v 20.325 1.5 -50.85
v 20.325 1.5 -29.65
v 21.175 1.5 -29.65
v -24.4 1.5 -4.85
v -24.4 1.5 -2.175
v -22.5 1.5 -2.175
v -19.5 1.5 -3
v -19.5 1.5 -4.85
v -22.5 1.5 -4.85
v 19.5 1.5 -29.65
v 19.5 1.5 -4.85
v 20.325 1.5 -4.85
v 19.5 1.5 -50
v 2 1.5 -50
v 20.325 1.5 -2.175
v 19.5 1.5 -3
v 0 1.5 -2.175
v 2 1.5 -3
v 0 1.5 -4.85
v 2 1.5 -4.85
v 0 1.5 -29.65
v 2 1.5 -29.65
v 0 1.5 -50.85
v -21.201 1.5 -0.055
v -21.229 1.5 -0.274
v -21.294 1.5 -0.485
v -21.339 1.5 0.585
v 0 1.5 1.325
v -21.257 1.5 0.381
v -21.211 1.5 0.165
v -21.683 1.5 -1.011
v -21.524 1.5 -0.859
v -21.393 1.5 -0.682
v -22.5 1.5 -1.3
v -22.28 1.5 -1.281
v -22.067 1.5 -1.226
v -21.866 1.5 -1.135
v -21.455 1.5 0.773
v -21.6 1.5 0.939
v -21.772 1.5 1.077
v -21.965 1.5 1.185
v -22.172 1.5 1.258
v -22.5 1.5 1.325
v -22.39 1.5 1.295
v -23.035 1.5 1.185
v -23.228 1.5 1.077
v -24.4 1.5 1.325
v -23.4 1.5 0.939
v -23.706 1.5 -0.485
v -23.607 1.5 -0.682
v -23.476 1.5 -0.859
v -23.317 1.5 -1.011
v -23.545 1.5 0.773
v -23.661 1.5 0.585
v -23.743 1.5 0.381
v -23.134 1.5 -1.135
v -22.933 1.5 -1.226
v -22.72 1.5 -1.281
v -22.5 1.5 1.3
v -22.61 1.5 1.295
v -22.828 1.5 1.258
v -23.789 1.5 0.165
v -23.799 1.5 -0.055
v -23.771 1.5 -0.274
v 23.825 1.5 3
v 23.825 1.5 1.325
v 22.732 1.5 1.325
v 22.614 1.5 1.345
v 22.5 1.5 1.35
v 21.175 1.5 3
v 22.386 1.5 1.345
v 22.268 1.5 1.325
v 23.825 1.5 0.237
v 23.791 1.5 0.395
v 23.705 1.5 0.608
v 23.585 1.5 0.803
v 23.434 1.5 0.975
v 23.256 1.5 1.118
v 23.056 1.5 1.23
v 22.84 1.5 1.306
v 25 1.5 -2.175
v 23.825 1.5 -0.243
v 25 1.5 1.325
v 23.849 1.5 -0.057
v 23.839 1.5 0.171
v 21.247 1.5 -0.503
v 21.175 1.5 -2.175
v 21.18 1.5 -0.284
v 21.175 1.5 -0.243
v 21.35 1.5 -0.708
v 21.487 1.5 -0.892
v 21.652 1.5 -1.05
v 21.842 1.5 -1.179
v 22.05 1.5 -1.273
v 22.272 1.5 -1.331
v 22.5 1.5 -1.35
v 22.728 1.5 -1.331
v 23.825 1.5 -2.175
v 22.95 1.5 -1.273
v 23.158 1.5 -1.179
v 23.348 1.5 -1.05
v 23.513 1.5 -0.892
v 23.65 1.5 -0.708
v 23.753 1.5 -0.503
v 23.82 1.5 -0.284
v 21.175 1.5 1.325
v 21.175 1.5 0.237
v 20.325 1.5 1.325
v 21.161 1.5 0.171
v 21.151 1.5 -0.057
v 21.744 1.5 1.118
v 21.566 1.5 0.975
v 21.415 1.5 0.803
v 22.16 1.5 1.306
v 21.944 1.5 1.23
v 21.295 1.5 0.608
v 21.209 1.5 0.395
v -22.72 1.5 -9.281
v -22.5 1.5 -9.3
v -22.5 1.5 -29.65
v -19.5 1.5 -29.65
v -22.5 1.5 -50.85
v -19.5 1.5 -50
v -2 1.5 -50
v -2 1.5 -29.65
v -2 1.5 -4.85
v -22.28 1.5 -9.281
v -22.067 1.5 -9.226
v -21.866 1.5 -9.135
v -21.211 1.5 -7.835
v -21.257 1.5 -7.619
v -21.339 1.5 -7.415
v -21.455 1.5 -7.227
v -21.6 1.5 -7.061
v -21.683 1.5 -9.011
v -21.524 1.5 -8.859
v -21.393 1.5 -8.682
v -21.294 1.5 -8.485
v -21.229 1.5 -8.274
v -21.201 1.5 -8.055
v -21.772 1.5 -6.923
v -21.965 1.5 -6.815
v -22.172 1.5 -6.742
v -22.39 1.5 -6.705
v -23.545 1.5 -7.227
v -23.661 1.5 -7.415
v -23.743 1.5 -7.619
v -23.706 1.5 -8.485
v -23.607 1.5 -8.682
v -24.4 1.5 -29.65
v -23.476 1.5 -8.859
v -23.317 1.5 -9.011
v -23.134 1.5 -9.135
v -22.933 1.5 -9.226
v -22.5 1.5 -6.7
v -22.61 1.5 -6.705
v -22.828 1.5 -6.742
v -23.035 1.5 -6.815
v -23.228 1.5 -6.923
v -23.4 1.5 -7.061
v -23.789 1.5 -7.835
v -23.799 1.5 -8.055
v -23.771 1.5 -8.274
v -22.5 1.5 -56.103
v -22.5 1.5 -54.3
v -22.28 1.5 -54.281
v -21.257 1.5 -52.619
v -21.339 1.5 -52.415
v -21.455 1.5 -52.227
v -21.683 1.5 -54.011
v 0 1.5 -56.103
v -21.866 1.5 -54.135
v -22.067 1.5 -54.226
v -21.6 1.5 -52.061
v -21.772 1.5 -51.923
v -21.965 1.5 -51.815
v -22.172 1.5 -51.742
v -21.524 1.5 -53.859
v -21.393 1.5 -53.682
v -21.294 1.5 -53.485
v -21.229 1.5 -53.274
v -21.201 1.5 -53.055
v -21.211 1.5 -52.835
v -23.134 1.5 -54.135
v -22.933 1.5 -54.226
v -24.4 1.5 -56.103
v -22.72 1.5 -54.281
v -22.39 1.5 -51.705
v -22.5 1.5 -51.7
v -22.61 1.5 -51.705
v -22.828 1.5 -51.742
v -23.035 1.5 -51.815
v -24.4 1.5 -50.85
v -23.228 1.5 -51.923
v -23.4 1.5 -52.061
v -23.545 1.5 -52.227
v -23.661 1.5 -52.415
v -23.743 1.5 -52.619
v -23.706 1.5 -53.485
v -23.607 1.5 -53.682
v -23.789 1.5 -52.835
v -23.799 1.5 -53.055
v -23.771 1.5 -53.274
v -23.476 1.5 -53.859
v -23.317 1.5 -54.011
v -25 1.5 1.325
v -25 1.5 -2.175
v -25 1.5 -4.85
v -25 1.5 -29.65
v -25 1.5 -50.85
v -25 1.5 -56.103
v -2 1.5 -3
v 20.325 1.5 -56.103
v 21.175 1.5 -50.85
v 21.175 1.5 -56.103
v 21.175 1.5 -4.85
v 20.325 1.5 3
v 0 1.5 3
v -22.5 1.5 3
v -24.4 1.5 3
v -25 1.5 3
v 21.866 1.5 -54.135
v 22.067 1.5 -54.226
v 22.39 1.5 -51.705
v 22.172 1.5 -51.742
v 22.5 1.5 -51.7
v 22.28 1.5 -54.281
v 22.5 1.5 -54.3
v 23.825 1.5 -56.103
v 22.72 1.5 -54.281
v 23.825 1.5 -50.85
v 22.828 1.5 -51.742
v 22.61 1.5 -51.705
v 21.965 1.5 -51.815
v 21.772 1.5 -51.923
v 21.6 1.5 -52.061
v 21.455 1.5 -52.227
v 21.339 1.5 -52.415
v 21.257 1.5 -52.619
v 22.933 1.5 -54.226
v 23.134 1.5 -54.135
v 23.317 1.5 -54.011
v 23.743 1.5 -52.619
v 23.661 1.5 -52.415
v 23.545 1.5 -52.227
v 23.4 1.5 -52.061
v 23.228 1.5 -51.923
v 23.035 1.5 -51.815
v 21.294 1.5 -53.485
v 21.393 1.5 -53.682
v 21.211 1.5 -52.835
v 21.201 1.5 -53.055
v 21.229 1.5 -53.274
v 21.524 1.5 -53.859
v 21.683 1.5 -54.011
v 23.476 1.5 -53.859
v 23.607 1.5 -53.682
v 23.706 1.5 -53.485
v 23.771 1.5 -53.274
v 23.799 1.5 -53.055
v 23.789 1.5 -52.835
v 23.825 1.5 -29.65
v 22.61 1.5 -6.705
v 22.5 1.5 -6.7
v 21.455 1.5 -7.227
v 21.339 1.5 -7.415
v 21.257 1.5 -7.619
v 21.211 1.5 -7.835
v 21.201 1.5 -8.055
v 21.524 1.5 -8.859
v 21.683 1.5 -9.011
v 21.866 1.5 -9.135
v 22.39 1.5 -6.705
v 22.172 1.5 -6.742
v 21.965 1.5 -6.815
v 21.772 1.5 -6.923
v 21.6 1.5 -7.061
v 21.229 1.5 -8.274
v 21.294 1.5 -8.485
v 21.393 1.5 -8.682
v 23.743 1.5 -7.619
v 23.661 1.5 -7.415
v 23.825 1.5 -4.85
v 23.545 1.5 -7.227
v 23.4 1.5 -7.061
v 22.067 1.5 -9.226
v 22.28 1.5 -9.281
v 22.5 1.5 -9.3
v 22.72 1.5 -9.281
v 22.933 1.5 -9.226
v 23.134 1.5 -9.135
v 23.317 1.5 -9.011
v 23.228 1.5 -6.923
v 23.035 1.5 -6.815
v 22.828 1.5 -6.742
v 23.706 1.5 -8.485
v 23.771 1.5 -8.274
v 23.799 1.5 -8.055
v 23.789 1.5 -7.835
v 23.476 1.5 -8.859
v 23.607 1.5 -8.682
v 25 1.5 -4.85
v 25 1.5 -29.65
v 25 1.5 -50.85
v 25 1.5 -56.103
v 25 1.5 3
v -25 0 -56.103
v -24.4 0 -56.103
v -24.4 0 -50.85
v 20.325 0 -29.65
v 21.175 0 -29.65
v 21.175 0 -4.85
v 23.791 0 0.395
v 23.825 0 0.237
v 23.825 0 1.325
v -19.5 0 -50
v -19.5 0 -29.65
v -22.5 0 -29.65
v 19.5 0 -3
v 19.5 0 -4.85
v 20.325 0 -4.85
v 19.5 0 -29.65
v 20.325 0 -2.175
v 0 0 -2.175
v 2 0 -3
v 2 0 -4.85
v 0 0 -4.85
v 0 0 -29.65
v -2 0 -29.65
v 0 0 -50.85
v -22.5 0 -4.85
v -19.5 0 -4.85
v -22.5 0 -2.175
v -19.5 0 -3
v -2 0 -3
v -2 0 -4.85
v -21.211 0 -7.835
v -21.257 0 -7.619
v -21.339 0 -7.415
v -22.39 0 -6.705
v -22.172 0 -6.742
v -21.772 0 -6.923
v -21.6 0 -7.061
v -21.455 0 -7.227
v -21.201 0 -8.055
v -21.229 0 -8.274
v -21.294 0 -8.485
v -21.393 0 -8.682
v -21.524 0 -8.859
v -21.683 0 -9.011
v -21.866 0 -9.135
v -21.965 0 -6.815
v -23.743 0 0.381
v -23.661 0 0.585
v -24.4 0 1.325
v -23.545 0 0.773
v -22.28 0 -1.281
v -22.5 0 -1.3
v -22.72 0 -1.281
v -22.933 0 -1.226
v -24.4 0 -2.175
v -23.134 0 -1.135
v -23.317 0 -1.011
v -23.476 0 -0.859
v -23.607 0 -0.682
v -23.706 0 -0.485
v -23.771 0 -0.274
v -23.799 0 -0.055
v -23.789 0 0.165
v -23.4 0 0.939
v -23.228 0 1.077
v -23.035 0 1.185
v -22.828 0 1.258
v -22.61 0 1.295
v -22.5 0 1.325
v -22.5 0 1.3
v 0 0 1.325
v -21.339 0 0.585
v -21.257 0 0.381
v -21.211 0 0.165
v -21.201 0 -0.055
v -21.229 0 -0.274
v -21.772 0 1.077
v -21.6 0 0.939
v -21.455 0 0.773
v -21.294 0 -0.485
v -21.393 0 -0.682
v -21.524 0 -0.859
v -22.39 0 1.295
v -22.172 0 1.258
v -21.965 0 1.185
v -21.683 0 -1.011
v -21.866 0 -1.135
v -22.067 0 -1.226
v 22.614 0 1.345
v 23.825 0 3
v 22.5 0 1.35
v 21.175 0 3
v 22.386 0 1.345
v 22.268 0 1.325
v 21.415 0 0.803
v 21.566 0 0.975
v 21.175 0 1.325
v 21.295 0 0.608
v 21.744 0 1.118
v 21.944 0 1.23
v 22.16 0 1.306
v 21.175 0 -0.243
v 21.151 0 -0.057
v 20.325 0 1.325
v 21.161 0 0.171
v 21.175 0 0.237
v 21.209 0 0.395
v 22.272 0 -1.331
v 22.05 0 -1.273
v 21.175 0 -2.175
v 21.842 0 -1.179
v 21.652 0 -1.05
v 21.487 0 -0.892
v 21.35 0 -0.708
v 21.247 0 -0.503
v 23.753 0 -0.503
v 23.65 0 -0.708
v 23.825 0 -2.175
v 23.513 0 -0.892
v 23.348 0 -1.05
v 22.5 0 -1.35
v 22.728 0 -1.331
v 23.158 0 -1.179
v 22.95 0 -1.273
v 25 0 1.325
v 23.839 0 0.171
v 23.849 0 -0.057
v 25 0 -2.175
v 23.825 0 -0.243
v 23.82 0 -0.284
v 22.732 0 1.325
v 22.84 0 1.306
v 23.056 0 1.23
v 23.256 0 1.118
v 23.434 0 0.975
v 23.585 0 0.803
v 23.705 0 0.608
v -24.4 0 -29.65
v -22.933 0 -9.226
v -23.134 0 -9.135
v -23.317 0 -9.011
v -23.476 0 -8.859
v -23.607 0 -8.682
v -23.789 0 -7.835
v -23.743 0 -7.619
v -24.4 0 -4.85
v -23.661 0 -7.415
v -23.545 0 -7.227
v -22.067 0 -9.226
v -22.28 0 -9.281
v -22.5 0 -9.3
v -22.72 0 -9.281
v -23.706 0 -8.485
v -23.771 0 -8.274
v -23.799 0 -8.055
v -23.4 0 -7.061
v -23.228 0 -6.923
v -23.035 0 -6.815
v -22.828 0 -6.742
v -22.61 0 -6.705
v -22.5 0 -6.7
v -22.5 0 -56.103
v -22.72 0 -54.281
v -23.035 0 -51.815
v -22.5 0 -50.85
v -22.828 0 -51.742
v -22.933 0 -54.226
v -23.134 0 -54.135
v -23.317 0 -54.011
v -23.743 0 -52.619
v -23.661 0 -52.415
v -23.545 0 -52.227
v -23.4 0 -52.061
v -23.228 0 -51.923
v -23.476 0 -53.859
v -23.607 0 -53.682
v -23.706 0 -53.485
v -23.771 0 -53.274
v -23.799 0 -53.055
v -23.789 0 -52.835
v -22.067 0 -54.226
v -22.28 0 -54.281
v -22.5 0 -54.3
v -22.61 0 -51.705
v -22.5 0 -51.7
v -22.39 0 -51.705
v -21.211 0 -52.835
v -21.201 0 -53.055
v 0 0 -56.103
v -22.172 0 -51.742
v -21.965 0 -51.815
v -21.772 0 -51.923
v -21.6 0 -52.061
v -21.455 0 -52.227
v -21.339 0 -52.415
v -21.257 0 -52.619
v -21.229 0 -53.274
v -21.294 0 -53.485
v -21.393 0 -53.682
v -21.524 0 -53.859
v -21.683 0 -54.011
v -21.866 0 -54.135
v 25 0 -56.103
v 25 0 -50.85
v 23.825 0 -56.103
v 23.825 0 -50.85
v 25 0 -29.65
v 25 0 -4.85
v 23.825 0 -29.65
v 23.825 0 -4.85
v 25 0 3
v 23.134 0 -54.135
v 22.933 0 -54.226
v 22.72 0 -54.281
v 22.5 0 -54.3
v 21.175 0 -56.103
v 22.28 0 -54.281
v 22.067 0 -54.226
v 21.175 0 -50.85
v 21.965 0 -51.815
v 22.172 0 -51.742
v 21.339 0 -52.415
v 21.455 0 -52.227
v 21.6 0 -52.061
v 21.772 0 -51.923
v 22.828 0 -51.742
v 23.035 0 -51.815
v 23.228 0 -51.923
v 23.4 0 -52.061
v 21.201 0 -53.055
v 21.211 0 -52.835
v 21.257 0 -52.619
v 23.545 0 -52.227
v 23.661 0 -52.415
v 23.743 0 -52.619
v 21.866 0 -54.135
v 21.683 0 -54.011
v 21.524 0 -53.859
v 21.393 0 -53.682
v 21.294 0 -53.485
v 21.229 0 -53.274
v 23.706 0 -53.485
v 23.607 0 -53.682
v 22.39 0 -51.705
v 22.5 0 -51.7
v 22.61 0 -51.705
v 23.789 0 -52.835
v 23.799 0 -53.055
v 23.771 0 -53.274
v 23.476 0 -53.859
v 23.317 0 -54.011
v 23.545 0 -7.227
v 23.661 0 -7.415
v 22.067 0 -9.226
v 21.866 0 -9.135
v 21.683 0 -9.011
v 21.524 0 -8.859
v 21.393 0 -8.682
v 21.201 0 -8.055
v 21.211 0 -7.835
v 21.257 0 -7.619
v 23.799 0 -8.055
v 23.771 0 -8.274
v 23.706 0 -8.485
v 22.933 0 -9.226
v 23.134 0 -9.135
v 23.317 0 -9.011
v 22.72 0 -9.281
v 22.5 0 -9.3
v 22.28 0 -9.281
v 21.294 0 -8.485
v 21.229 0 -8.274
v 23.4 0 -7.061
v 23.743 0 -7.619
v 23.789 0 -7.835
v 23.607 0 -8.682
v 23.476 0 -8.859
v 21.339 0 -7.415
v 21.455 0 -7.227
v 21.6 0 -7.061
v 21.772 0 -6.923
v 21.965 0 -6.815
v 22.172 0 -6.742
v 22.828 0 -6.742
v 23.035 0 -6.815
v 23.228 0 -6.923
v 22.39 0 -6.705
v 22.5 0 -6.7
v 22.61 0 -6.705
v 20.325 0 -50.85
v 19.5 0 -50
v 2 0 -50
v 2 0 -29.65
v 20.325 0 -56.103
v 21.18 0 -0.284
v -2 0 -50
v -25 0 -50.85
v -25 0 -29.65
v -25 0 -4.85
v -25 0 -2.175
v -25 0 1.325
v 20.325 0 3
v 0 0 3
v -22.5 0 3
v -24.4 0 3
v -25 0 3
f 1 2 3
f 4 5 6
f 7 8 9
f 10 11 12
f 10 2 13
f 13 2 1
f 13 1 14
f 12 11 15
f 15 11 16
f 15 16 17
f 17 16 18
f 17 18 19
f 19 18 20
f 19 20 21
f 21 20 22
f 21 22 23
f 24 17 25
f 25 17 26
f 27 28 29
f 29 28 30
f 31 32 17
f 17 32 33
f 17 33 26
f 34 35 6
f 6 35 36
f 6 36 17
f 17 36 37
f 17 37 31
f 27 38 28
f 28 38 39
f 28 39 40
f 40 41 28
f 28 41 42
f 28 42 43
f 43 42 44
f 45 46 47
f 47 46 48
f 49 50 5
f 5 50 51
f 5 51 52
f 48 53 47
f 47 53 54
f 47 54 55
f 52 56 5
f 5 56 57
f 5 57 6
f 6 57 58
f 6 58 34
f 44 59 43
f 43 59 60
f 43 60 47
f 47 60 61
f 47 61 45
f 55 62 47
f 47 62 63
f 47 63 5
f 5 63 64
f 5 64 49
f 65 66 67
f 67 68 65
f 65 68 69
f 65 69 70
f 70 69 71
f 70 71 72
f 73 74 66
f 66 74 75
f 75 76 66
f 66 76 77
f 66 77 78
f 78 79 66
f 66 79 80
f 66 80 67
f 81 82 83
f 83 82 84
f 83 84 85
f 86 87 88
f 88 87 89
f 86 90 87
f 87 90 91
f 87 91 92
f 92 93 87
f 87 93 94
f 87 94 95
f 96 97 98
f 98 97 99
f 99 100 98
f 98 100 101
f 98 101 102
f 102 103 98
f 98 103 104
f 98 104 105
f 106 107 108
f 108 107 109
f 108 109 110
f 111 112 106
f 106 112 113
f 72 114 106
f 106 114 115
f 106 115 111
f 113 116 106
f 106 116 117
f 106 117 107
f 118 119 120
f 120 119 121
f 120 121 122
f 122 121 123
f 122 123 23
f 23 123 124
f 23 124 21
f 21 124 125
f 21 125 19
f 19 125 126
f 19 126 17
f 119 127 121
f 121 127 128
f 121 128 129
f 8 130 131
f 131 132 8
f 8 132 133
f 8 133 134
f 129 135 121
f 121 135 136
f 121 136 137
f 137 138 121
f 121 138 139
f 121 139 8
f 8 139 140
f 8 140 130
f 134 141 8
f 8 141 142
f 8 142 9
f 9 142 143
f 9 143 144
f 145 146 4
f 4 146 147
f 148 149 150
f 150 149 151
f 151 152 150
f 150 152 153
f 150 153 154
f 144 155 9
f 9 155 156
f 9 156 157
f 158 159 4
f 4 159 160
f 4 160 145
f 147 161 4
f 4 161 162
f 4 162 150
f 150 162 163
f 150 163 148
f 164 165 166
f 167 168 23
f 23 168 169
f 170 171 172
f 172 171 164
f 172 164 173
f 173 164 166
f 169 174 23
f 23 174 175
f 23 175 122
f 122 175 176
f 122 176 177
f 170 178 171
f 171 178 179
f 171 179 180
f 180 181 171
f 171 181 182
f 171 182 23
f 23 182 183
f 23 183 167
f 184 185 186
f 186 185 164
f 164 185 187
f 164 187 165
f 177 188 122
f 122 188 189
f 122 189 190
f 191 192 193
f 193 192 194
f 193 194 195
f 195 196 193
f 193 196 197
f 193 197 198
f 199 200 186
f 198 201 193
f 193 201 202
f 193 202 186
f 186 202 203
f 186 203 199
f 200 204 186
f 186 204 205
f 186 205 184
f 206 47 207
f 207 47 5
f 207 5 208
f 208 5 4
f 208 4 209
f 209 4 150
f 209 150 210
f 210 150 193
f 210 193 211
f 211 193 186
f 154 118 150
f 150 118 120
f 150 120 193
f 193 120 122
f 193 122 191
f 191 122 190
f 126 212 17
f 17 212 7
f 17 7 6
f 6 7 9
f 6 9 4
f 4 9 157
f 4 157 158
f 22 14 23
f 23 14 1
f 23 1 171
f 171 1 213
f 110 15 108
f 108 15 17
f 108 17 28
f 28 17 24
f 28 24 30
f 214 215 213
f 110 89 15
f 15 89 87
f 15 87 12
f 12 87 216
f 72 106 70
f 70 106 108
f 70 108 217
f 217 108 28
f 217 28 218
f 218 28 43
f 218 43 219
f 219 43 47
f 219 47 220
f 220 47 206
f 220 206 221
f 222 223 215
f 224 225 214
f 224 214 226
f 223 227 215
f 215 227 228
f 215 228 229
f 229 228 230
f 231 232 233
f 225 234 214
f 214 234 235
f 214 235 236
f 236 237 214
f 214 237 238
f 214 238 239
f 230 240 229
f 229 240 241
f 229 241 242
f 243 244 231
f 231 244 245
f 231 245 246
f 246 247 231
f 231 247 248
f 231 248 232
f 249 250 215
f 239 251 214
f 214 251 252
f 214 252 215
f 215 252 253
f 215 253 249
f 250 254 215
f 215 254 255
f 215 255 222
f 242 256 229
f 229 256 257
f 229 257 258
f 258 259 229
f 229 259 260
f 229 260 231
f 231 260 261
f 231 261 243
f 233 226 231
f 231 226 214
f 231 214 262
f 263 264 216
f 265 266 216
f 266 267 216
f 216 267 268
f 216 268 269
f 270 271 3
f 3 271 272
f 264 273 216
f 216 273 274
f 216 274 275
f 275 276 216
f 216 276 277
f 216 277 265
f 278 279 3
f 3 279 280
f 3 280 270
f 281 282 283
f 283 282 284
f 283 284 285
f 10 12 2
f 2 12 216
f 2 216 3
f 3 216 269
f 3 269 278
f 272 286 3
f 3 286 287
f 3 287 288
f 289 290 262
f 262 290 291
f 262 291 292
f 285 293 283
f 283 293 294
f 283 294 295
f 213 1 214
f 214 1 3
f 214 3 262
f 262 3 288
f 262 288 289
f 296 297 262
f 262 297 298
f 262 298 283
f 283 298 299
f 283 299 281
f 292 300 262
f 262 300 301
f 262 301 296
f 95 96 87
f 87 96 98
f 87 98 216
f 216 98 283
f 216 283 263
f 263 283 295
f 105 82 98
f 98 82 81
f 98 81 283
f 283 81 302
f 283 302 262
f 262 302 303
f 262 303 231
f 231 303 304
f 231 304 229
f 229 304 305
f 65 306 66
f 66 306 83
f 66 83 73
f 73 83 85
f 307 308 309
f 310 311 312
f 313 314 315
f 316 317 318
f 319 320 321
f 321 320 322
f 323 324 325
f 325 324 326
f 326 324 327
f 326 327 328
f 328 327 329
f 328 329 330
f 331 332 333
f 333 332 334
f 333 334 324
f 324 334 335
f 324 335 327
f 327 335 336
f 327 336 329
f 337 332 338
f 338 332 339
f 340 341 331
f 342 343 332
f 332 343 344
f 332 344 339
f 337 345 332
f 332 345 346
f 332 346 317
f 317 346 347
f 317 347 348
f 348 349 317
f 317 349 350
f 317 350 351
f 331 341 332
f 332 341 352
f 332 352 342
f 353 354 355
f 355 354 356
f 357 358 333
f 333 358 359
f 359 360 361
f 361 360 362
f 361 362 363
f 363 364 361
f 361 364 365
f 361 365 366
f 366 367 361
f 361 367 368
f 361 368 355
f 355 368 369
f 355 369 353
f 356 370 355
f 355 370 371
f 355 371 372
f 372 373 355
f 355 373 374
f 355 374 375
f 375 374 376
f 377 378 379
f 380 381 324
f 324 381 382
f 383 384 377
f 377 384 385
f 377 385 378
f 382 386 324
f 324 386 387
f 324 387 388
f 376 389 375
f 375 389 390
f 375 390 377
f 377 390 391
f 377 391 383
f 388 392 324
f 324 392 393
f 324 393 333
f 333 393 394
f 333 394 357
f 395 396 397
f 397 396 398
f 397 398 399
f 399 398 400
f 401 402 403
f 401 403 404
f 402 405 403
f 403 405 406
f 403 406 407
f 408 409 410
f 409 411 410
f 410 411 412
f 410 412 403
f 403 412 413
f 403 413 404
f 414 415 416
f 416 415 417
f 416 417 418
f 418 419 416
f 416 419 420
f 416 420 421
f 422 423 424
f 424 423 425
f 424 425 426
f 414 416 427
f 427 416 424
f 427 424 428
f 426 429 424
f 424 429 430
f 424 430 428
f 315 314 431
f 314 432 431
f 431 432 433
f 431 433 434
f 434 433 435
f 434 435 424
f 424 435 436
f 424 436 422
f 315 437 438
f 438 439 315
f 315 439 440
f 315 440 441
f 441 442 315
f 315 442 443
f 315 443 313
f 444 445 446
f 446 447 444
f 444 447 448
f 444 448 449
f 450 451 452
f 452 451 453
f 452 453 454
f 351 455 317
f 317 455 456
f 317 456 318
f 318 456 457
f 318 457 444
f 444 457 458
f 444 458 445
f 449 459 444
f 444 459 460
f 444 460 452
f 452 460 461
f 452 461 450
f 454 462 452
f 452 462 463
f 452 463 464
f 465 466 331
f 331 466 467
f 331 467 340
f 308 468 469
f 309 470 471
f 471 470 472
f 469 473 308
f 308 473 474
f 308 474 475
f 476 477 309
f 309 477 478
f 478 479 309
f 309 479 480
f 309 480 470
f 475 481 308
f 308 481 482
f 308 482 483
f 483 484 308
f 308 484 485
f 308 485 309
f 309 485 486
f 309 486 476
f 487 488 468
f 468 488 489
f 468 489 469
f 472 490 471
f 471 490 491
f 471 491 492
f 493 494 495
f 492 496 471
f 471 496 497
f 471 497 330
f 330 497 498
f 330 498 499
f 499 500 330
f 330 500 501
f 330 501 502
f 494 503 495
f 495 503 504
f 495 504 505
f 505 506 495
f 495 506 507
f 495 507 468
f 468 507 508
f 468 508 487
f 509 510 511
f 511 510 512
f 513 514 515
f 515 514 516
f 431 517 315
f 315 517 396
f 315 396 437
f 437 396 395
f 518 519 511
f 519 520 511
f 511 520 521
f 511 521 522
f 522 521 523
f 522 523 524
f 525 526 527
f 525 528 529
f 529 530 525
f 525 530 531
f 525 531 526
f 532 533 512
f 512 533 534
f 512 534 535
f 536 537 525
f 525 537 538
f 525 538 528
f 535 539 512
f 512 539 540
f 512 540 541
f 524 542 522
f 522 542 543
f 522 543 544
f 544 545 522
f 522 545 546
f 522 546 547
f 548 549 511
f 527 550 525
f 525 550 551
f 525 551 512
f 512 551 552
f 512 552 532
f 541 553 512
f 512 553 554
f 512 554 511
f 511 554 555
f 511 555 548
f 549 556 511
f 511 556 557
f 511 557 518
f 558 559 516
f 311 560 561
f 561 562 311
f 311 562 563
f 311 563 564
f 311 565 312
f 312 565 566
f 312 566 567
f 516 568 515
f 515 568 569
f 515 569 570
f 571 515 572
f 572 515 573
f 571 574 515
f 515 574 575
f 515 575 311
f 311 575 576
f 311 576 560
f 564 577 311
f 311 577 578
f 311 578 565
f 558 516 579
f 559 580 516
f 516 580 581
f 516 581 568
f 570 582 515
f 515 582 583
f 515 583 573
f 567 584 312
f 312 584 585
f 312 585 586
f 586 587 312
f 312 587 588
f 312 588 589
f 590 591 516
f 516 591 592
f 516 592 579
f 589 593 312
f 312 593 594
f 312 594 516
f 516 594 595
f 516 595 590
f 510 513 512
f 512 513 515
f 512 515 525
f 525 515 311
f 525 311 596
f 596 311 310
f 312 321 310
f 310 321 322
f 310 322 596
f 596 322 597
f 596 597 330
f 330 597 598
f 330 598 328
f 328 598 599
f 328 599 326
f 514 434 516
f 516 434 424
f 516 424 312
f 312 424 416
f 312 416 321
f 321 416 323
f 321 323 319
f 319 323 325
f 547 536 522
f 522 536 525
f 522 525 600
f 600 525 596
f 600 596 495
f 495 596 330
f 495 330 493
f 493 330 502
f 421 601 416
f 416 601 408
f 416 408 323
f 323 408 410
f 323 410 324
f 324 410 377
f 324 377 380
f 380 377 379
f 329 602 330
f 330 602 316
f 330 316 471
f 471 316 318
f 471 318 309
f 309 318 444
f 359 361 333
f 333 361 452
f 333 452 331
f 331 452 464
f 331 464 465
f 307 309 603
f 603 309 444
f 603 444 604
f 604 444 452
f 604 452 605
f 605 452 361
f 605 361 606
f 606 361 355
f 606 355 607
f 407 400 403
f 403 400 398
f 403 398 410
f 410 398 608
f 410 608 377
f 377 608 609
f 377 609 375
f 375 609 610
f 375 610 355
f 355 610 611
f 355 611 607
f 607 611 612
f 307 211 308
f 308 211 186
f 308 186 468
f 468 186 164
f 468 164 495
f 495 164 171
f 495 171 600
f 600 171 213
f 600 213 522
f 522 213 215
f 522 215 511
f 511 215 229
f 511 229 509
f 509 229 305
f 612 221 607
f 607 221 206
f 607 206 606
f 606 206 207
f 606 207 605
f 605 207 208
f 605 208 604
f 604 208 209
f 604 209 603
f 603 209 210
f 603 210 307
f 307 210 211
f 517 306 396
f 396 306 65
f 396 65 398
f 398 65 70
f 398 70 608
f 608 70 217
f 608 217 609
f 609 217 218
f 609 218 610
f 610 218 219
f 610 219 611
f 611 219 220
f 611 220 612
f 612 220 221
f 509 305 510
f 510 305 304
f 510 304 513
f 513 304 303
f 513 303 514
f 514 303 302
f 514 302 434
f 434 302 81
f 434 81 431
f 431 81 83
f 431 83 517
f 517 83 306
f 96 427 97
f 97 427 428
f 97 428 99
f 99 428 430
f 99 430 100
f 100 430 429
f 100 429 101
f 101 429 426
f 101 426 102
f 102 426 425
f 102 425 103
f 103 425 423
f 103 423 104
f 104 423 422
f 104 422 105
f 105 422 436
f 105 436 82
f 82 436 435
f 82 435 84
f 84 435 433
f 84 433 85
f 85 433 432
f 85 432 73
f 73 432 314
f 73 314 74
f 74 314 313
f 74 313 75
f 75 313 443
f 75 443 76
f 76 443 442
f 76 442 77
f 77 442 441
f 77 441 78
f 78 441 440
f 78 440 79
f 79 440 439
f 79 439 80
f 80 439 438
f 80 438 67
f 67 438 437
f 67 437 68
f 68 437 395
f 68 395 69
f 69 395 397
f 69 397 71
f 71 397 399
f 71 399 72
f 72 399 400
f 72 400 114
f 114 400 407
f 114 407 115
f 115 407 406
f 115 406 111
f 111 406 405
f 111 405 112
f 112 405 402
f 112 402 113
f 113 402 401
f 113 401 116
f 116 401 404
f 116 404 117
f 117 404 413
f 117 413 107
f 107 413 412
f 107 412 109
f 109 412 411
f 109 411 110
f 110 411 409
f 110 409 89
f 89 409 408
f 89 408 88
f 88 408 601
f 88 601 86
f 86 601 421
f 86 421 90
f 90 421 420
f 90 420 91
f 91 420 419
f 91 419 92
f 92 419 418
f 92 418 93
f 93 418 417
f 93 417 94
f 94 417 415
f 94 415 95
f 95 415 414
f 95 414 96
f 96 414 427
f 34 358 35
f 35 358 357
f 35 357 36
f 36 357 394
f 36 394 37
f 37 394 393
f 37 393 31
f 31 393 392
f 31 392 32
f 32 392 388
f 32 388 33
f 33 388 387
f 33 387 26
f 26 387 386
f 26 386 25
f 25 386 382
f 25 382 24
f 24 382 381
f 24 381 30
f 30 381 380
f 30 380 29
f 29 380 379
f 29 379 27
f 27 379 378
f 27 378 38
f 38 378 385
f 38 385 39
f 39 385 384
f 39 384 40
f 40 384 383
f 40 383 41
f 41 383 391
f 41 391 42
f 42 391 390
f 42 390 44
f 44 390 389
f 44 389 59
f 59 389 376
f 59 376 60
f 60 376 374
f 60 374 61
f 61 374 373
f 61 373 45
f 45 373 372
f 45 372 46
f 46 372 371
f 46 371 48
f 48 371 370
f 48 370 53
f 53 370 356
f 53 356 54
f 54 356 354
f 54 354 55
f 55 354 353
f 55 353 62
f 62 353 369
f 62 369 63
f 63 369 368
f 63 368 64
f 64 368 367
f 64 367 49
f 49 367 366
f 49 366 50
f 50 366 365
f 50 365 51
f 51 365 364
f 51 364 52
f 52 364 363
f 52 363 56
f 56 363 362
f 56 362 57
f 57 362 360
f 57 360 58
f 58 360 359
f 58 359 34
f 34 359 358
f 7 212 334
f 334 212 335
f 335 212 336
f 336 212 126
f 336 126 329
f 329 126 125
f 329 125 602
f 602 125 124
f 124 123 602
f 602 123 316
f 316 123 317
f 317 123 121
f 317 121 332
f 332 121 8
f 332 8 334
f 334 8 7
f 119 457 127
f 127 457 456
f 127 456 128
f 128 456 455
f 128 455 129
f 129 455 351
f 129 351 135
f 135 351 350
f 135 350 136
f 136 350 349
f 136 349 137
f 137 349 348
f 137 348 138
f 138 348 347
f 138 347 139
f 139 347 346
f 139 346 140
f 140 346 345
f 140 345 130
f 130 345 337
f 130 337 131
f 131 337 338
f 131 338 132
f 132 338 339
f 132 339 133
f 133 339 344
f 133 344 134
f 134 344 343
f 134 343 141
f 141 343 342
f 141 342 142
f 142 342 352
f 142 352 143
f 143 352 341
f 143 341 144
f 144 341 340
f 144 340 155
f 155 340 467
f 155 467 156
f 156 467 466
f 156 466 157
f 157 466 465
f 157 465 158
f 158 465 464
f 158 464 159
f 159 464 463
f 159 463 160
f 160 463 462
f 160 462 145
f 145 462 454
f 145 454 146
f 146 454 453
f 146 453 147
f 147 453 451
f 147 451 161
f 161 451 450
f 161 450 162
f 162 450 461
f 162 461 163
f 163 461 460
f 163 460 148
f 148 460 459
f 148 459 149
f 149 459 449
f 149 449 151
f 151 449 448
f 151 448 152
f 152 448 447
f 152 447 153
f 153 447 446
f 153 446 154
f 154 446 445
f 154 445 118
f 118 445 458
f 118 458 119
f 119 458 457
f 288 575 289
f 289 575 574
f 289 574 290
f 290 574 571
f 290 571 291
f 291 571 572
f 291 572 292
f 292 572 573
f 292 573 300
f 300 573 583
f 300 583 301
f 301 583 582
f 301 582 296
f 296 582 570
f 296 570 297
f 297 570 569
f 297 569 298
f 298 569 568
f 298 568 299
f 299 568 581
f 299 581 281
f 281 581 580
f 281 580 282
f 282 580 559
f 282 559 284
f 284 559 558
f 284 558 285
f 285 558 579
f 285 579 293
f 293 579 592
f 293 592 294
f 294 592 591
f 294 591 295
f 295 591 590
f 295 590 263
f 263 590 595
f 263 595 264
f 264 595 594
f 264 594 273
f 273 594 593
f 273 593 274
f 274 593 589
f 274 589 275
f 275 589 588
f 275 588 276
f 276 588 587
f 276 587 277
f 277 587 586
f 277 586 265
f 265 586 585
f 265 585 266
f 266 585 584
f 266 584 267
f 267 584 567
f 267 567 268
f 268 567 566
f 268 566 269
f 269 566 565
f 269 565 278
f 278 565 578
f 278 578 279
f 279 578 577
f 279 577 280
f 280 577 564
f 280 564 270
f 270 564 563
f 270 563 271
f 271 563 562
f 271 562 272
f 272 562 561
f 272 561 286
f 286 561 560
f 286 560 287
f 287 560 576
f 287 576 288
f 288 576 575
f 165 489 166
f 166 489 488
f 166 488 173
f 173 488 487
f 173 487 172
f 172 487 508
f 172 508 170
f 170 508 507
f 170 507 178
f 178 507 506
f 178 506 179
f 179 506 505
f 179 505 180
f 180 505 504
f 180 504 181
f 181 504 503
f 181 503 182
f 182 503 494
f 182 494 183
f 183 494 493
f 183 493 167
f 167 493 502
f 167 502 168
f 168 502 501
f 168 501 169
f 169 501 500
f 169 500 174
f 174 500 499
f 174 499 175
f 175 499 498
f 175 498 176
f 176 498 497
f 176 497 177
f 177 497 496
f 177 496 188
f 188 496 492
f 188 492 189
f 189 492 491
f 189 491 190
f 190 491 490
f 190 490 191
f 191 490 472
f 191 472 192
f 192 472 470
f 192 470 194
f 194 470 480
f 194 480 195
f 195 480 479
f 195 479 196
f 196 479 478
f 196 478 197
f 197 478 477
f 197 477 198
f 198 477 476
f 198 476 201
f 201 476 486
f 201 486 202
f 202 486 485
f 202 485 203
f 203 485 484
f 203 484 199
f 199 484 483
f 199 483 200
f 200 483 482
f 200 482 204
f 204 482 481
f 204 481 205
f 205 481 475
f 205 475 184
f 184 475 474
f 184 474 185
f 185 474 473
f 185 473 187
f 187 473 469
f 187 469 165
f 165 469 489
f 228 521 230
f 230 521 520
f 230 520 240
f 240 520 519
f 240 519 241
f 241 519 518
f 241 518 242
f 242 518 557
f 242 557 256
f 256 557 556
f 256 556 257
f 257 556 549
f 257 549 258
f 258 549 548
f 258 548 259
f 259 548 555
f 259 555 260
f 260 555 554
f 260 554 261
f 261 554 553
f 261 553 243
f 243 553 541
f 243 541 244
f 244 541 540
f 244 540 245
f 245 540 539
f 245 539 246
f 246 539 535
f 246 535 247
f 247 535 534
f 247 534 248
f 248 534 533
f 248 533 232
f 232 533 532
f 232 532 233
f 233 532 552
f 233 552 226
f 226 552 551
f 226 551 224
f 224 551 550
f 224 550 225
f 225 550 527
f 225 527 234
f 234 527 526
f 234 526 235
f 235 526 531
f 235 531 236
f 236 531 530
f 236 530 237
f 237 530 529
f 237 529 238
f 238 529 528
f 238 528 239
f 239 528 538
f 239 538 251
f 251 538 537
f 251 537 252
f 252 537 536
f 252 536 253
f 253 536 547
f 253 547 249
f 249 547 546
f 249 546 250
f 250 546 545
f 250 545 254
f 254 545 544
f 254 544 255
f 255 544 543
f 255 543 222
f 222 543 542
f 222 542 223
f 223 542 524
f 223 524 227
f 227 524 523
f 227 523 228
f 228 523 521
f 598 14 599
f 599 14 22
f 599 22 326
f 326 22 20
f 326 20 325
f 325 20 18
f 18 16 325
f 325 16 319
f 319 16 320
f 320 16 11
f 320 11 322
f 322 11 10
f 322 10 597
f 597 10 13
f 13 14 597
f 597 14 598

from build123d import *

# Parameters (mm, degrees)
SKETCH_1_R      = 1.35
SKETCH_1_R_2    = 1.3
SKETCH_1_W      = 17.5
SKETCH_1_H      = 47
EXTRUDE_1_DEPTH = 1.5


with BuildPart() as part:
    # 草图1 → 凸台-拉伸1 (new body)
    with BuildSketch(Plane(origin=(0, 0, 0), x_dir=(1, 0, 0), z_dir=(0, 1, 0))):
        Polygon((25, 11), (25, -3), (-25, -3), (-25, 11), (-25, 56.10335237), (25, 56.10335237), align=None)
        with Locations((22.5, 0)):
            Circle(SKETCH_1_R, mode=Mode.SUBTRACT)
        with Locations((-22.5, 0)):
            Circle(SKETCH_1_R_2, mode=Mode.SUBTRACT)
        with Locations((-22.5, 8)):
            Circle(SKETCH_1_R_2, mode=Mode.SUBTRACT)
        with Locations((22.5, 8)):
            Circle(SKETCH_1_R_2, mode=Mode.SUBTRACT)
        with Locations((-22.5, 53)):
            Circle(SKETCH_1_R_2, mode=Mode.SUBTRACT)
        with Locations((22.5, 53)):
            Circle(SKETCH_1_R_2, mode=Mode.SUBTRACT)
        with Locations((10.75, 26.5)):
            Rectangle(SKETCH_1_W, SKETCH_1_H, mode=Mode.SUBTRACT)
        with Locations((-10.75, 26.5)):
            Rectangle(SKETCH_1_W, SKETCH_1_H, mode=Mode.SUBTRACT)
    extrude(amount=EXTRUDE_1_DEPTH)


solid = part.part
